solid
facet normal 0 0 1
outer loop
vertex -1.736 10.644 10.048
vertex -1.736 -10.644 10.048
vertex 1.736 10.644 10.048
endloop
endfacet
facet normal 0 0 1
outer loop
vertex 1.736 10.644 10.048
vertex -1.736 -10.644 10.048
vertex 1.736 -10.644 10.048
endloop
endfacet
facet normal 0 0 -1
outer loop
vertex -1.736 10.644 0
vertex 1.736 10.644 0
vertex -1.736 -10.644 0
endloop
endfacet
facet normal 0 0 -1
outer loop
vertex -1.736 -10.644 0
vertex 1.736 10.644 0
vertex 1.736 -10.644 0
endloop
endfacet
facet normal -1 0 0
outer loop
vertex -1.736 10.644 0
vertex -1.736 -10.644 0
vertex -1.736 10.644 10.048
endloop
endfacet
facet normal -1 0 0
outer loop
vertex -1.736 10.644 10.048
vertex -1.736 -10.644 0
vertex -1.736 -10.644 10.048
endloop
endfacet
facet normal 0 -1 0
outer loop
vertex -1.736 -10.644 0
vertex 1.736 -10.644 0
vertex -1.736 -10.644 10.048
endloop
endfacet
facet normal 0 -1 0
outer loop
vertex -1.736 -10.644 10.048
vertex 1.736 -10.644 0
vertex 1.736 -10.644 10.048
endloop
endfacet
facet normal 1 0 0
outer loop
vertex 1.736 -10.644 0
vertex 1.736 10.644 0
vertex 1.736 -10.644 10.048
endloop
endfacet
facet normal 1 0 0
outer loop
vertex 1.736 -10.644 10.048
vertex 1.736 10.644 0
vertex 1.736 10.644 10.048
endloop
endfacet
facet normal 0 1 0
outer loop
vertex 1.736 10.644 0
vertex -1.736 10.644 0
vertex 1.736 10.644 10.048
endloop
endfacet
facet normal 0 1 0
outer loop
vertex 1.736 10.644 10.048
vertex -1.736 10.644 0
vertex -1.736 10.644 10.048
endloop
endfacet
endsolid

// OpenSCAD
module invaders_v2_missle3() 
{
	polyhedron(
		points=[
			[-1.735909, 10.64385, 10.04818],
			[-1.735909, -10.64385, 10.04818],
			[1.735909, 10.64385, 10.04818],
			[1.735909, 10.64385, 10.04818],
			[-1.735909, -10.64385, 10.04818],
			[1.735909, -10.64385, 10.04818],
			[-1.735909, 10.64385, 0.0],
			[1.735909, 10.64385, 0.0],
			[-1.735909, -10.64385, 1.110223e-15],
			[-1.735909, -10.64385, 1.110223e-15],
			[1.735909, 10.64385, 0.0],
			[1.735909, -10.64385, 1.110223e-15],
			[-1.735909, 10.64385, 0.0],
			[-1.735909, -10.64385, 1.110223e-15],
			[-1.735909, 10.64385, 10.04818],
			[-1.735909, 10.64385, 10.04818],
			[-1.735909, -10.64385, 1.110223e-15],
			[-1.735909, -10.64385, 10.04818],
			[-1.735909, -10.64385, 1.110223e-15],
			[1.735909, -10.64385, 1.110223e-15],
			[-1.735909, -10.64385, 10.04818],
			[-1.735909, -10.64385, 10.04818],
			[1.735909, -10.64385, 1.110223e-15],
			[1.735909, -10.64385, 10.04818],
			[1.735909, -10.64385, 1.110223e-15],
			[1.735909, 10.64385, 0.0],
			[1.735909, -10.64385, 10.04818],
			[1.735909, -10.64385, 10.04818],
			[1.735909, 10.64385, 0.0],
			[1.735909, 10.64385, 10.04818],
			[1.735909, 10.64385, 0.0],
			[-1.735909, 10.64385, 0.0],
			[1.735909, 10.64385, 10.04818],
			[1.735909, 10.64385, 10.04818],
			[-1.735909, 10.64385, 0.0],
			[-1.735909, 10.64385, 10.04818]
		],
		faces=[
			[0, 1, 2],
			[3, 4, 5],
			[6, 7, 8],
			[9, 10, 11],
			[12, 13, 14],
			[15, 16, 17],
			[18, 19, 20],
			[21, 22, 23],
			[24, 25, 26],
			[27, 28, 29],
			[30, 31, 32],
			[33, 34, 35]
		]
	);
}

invaders_v2_missle3();
